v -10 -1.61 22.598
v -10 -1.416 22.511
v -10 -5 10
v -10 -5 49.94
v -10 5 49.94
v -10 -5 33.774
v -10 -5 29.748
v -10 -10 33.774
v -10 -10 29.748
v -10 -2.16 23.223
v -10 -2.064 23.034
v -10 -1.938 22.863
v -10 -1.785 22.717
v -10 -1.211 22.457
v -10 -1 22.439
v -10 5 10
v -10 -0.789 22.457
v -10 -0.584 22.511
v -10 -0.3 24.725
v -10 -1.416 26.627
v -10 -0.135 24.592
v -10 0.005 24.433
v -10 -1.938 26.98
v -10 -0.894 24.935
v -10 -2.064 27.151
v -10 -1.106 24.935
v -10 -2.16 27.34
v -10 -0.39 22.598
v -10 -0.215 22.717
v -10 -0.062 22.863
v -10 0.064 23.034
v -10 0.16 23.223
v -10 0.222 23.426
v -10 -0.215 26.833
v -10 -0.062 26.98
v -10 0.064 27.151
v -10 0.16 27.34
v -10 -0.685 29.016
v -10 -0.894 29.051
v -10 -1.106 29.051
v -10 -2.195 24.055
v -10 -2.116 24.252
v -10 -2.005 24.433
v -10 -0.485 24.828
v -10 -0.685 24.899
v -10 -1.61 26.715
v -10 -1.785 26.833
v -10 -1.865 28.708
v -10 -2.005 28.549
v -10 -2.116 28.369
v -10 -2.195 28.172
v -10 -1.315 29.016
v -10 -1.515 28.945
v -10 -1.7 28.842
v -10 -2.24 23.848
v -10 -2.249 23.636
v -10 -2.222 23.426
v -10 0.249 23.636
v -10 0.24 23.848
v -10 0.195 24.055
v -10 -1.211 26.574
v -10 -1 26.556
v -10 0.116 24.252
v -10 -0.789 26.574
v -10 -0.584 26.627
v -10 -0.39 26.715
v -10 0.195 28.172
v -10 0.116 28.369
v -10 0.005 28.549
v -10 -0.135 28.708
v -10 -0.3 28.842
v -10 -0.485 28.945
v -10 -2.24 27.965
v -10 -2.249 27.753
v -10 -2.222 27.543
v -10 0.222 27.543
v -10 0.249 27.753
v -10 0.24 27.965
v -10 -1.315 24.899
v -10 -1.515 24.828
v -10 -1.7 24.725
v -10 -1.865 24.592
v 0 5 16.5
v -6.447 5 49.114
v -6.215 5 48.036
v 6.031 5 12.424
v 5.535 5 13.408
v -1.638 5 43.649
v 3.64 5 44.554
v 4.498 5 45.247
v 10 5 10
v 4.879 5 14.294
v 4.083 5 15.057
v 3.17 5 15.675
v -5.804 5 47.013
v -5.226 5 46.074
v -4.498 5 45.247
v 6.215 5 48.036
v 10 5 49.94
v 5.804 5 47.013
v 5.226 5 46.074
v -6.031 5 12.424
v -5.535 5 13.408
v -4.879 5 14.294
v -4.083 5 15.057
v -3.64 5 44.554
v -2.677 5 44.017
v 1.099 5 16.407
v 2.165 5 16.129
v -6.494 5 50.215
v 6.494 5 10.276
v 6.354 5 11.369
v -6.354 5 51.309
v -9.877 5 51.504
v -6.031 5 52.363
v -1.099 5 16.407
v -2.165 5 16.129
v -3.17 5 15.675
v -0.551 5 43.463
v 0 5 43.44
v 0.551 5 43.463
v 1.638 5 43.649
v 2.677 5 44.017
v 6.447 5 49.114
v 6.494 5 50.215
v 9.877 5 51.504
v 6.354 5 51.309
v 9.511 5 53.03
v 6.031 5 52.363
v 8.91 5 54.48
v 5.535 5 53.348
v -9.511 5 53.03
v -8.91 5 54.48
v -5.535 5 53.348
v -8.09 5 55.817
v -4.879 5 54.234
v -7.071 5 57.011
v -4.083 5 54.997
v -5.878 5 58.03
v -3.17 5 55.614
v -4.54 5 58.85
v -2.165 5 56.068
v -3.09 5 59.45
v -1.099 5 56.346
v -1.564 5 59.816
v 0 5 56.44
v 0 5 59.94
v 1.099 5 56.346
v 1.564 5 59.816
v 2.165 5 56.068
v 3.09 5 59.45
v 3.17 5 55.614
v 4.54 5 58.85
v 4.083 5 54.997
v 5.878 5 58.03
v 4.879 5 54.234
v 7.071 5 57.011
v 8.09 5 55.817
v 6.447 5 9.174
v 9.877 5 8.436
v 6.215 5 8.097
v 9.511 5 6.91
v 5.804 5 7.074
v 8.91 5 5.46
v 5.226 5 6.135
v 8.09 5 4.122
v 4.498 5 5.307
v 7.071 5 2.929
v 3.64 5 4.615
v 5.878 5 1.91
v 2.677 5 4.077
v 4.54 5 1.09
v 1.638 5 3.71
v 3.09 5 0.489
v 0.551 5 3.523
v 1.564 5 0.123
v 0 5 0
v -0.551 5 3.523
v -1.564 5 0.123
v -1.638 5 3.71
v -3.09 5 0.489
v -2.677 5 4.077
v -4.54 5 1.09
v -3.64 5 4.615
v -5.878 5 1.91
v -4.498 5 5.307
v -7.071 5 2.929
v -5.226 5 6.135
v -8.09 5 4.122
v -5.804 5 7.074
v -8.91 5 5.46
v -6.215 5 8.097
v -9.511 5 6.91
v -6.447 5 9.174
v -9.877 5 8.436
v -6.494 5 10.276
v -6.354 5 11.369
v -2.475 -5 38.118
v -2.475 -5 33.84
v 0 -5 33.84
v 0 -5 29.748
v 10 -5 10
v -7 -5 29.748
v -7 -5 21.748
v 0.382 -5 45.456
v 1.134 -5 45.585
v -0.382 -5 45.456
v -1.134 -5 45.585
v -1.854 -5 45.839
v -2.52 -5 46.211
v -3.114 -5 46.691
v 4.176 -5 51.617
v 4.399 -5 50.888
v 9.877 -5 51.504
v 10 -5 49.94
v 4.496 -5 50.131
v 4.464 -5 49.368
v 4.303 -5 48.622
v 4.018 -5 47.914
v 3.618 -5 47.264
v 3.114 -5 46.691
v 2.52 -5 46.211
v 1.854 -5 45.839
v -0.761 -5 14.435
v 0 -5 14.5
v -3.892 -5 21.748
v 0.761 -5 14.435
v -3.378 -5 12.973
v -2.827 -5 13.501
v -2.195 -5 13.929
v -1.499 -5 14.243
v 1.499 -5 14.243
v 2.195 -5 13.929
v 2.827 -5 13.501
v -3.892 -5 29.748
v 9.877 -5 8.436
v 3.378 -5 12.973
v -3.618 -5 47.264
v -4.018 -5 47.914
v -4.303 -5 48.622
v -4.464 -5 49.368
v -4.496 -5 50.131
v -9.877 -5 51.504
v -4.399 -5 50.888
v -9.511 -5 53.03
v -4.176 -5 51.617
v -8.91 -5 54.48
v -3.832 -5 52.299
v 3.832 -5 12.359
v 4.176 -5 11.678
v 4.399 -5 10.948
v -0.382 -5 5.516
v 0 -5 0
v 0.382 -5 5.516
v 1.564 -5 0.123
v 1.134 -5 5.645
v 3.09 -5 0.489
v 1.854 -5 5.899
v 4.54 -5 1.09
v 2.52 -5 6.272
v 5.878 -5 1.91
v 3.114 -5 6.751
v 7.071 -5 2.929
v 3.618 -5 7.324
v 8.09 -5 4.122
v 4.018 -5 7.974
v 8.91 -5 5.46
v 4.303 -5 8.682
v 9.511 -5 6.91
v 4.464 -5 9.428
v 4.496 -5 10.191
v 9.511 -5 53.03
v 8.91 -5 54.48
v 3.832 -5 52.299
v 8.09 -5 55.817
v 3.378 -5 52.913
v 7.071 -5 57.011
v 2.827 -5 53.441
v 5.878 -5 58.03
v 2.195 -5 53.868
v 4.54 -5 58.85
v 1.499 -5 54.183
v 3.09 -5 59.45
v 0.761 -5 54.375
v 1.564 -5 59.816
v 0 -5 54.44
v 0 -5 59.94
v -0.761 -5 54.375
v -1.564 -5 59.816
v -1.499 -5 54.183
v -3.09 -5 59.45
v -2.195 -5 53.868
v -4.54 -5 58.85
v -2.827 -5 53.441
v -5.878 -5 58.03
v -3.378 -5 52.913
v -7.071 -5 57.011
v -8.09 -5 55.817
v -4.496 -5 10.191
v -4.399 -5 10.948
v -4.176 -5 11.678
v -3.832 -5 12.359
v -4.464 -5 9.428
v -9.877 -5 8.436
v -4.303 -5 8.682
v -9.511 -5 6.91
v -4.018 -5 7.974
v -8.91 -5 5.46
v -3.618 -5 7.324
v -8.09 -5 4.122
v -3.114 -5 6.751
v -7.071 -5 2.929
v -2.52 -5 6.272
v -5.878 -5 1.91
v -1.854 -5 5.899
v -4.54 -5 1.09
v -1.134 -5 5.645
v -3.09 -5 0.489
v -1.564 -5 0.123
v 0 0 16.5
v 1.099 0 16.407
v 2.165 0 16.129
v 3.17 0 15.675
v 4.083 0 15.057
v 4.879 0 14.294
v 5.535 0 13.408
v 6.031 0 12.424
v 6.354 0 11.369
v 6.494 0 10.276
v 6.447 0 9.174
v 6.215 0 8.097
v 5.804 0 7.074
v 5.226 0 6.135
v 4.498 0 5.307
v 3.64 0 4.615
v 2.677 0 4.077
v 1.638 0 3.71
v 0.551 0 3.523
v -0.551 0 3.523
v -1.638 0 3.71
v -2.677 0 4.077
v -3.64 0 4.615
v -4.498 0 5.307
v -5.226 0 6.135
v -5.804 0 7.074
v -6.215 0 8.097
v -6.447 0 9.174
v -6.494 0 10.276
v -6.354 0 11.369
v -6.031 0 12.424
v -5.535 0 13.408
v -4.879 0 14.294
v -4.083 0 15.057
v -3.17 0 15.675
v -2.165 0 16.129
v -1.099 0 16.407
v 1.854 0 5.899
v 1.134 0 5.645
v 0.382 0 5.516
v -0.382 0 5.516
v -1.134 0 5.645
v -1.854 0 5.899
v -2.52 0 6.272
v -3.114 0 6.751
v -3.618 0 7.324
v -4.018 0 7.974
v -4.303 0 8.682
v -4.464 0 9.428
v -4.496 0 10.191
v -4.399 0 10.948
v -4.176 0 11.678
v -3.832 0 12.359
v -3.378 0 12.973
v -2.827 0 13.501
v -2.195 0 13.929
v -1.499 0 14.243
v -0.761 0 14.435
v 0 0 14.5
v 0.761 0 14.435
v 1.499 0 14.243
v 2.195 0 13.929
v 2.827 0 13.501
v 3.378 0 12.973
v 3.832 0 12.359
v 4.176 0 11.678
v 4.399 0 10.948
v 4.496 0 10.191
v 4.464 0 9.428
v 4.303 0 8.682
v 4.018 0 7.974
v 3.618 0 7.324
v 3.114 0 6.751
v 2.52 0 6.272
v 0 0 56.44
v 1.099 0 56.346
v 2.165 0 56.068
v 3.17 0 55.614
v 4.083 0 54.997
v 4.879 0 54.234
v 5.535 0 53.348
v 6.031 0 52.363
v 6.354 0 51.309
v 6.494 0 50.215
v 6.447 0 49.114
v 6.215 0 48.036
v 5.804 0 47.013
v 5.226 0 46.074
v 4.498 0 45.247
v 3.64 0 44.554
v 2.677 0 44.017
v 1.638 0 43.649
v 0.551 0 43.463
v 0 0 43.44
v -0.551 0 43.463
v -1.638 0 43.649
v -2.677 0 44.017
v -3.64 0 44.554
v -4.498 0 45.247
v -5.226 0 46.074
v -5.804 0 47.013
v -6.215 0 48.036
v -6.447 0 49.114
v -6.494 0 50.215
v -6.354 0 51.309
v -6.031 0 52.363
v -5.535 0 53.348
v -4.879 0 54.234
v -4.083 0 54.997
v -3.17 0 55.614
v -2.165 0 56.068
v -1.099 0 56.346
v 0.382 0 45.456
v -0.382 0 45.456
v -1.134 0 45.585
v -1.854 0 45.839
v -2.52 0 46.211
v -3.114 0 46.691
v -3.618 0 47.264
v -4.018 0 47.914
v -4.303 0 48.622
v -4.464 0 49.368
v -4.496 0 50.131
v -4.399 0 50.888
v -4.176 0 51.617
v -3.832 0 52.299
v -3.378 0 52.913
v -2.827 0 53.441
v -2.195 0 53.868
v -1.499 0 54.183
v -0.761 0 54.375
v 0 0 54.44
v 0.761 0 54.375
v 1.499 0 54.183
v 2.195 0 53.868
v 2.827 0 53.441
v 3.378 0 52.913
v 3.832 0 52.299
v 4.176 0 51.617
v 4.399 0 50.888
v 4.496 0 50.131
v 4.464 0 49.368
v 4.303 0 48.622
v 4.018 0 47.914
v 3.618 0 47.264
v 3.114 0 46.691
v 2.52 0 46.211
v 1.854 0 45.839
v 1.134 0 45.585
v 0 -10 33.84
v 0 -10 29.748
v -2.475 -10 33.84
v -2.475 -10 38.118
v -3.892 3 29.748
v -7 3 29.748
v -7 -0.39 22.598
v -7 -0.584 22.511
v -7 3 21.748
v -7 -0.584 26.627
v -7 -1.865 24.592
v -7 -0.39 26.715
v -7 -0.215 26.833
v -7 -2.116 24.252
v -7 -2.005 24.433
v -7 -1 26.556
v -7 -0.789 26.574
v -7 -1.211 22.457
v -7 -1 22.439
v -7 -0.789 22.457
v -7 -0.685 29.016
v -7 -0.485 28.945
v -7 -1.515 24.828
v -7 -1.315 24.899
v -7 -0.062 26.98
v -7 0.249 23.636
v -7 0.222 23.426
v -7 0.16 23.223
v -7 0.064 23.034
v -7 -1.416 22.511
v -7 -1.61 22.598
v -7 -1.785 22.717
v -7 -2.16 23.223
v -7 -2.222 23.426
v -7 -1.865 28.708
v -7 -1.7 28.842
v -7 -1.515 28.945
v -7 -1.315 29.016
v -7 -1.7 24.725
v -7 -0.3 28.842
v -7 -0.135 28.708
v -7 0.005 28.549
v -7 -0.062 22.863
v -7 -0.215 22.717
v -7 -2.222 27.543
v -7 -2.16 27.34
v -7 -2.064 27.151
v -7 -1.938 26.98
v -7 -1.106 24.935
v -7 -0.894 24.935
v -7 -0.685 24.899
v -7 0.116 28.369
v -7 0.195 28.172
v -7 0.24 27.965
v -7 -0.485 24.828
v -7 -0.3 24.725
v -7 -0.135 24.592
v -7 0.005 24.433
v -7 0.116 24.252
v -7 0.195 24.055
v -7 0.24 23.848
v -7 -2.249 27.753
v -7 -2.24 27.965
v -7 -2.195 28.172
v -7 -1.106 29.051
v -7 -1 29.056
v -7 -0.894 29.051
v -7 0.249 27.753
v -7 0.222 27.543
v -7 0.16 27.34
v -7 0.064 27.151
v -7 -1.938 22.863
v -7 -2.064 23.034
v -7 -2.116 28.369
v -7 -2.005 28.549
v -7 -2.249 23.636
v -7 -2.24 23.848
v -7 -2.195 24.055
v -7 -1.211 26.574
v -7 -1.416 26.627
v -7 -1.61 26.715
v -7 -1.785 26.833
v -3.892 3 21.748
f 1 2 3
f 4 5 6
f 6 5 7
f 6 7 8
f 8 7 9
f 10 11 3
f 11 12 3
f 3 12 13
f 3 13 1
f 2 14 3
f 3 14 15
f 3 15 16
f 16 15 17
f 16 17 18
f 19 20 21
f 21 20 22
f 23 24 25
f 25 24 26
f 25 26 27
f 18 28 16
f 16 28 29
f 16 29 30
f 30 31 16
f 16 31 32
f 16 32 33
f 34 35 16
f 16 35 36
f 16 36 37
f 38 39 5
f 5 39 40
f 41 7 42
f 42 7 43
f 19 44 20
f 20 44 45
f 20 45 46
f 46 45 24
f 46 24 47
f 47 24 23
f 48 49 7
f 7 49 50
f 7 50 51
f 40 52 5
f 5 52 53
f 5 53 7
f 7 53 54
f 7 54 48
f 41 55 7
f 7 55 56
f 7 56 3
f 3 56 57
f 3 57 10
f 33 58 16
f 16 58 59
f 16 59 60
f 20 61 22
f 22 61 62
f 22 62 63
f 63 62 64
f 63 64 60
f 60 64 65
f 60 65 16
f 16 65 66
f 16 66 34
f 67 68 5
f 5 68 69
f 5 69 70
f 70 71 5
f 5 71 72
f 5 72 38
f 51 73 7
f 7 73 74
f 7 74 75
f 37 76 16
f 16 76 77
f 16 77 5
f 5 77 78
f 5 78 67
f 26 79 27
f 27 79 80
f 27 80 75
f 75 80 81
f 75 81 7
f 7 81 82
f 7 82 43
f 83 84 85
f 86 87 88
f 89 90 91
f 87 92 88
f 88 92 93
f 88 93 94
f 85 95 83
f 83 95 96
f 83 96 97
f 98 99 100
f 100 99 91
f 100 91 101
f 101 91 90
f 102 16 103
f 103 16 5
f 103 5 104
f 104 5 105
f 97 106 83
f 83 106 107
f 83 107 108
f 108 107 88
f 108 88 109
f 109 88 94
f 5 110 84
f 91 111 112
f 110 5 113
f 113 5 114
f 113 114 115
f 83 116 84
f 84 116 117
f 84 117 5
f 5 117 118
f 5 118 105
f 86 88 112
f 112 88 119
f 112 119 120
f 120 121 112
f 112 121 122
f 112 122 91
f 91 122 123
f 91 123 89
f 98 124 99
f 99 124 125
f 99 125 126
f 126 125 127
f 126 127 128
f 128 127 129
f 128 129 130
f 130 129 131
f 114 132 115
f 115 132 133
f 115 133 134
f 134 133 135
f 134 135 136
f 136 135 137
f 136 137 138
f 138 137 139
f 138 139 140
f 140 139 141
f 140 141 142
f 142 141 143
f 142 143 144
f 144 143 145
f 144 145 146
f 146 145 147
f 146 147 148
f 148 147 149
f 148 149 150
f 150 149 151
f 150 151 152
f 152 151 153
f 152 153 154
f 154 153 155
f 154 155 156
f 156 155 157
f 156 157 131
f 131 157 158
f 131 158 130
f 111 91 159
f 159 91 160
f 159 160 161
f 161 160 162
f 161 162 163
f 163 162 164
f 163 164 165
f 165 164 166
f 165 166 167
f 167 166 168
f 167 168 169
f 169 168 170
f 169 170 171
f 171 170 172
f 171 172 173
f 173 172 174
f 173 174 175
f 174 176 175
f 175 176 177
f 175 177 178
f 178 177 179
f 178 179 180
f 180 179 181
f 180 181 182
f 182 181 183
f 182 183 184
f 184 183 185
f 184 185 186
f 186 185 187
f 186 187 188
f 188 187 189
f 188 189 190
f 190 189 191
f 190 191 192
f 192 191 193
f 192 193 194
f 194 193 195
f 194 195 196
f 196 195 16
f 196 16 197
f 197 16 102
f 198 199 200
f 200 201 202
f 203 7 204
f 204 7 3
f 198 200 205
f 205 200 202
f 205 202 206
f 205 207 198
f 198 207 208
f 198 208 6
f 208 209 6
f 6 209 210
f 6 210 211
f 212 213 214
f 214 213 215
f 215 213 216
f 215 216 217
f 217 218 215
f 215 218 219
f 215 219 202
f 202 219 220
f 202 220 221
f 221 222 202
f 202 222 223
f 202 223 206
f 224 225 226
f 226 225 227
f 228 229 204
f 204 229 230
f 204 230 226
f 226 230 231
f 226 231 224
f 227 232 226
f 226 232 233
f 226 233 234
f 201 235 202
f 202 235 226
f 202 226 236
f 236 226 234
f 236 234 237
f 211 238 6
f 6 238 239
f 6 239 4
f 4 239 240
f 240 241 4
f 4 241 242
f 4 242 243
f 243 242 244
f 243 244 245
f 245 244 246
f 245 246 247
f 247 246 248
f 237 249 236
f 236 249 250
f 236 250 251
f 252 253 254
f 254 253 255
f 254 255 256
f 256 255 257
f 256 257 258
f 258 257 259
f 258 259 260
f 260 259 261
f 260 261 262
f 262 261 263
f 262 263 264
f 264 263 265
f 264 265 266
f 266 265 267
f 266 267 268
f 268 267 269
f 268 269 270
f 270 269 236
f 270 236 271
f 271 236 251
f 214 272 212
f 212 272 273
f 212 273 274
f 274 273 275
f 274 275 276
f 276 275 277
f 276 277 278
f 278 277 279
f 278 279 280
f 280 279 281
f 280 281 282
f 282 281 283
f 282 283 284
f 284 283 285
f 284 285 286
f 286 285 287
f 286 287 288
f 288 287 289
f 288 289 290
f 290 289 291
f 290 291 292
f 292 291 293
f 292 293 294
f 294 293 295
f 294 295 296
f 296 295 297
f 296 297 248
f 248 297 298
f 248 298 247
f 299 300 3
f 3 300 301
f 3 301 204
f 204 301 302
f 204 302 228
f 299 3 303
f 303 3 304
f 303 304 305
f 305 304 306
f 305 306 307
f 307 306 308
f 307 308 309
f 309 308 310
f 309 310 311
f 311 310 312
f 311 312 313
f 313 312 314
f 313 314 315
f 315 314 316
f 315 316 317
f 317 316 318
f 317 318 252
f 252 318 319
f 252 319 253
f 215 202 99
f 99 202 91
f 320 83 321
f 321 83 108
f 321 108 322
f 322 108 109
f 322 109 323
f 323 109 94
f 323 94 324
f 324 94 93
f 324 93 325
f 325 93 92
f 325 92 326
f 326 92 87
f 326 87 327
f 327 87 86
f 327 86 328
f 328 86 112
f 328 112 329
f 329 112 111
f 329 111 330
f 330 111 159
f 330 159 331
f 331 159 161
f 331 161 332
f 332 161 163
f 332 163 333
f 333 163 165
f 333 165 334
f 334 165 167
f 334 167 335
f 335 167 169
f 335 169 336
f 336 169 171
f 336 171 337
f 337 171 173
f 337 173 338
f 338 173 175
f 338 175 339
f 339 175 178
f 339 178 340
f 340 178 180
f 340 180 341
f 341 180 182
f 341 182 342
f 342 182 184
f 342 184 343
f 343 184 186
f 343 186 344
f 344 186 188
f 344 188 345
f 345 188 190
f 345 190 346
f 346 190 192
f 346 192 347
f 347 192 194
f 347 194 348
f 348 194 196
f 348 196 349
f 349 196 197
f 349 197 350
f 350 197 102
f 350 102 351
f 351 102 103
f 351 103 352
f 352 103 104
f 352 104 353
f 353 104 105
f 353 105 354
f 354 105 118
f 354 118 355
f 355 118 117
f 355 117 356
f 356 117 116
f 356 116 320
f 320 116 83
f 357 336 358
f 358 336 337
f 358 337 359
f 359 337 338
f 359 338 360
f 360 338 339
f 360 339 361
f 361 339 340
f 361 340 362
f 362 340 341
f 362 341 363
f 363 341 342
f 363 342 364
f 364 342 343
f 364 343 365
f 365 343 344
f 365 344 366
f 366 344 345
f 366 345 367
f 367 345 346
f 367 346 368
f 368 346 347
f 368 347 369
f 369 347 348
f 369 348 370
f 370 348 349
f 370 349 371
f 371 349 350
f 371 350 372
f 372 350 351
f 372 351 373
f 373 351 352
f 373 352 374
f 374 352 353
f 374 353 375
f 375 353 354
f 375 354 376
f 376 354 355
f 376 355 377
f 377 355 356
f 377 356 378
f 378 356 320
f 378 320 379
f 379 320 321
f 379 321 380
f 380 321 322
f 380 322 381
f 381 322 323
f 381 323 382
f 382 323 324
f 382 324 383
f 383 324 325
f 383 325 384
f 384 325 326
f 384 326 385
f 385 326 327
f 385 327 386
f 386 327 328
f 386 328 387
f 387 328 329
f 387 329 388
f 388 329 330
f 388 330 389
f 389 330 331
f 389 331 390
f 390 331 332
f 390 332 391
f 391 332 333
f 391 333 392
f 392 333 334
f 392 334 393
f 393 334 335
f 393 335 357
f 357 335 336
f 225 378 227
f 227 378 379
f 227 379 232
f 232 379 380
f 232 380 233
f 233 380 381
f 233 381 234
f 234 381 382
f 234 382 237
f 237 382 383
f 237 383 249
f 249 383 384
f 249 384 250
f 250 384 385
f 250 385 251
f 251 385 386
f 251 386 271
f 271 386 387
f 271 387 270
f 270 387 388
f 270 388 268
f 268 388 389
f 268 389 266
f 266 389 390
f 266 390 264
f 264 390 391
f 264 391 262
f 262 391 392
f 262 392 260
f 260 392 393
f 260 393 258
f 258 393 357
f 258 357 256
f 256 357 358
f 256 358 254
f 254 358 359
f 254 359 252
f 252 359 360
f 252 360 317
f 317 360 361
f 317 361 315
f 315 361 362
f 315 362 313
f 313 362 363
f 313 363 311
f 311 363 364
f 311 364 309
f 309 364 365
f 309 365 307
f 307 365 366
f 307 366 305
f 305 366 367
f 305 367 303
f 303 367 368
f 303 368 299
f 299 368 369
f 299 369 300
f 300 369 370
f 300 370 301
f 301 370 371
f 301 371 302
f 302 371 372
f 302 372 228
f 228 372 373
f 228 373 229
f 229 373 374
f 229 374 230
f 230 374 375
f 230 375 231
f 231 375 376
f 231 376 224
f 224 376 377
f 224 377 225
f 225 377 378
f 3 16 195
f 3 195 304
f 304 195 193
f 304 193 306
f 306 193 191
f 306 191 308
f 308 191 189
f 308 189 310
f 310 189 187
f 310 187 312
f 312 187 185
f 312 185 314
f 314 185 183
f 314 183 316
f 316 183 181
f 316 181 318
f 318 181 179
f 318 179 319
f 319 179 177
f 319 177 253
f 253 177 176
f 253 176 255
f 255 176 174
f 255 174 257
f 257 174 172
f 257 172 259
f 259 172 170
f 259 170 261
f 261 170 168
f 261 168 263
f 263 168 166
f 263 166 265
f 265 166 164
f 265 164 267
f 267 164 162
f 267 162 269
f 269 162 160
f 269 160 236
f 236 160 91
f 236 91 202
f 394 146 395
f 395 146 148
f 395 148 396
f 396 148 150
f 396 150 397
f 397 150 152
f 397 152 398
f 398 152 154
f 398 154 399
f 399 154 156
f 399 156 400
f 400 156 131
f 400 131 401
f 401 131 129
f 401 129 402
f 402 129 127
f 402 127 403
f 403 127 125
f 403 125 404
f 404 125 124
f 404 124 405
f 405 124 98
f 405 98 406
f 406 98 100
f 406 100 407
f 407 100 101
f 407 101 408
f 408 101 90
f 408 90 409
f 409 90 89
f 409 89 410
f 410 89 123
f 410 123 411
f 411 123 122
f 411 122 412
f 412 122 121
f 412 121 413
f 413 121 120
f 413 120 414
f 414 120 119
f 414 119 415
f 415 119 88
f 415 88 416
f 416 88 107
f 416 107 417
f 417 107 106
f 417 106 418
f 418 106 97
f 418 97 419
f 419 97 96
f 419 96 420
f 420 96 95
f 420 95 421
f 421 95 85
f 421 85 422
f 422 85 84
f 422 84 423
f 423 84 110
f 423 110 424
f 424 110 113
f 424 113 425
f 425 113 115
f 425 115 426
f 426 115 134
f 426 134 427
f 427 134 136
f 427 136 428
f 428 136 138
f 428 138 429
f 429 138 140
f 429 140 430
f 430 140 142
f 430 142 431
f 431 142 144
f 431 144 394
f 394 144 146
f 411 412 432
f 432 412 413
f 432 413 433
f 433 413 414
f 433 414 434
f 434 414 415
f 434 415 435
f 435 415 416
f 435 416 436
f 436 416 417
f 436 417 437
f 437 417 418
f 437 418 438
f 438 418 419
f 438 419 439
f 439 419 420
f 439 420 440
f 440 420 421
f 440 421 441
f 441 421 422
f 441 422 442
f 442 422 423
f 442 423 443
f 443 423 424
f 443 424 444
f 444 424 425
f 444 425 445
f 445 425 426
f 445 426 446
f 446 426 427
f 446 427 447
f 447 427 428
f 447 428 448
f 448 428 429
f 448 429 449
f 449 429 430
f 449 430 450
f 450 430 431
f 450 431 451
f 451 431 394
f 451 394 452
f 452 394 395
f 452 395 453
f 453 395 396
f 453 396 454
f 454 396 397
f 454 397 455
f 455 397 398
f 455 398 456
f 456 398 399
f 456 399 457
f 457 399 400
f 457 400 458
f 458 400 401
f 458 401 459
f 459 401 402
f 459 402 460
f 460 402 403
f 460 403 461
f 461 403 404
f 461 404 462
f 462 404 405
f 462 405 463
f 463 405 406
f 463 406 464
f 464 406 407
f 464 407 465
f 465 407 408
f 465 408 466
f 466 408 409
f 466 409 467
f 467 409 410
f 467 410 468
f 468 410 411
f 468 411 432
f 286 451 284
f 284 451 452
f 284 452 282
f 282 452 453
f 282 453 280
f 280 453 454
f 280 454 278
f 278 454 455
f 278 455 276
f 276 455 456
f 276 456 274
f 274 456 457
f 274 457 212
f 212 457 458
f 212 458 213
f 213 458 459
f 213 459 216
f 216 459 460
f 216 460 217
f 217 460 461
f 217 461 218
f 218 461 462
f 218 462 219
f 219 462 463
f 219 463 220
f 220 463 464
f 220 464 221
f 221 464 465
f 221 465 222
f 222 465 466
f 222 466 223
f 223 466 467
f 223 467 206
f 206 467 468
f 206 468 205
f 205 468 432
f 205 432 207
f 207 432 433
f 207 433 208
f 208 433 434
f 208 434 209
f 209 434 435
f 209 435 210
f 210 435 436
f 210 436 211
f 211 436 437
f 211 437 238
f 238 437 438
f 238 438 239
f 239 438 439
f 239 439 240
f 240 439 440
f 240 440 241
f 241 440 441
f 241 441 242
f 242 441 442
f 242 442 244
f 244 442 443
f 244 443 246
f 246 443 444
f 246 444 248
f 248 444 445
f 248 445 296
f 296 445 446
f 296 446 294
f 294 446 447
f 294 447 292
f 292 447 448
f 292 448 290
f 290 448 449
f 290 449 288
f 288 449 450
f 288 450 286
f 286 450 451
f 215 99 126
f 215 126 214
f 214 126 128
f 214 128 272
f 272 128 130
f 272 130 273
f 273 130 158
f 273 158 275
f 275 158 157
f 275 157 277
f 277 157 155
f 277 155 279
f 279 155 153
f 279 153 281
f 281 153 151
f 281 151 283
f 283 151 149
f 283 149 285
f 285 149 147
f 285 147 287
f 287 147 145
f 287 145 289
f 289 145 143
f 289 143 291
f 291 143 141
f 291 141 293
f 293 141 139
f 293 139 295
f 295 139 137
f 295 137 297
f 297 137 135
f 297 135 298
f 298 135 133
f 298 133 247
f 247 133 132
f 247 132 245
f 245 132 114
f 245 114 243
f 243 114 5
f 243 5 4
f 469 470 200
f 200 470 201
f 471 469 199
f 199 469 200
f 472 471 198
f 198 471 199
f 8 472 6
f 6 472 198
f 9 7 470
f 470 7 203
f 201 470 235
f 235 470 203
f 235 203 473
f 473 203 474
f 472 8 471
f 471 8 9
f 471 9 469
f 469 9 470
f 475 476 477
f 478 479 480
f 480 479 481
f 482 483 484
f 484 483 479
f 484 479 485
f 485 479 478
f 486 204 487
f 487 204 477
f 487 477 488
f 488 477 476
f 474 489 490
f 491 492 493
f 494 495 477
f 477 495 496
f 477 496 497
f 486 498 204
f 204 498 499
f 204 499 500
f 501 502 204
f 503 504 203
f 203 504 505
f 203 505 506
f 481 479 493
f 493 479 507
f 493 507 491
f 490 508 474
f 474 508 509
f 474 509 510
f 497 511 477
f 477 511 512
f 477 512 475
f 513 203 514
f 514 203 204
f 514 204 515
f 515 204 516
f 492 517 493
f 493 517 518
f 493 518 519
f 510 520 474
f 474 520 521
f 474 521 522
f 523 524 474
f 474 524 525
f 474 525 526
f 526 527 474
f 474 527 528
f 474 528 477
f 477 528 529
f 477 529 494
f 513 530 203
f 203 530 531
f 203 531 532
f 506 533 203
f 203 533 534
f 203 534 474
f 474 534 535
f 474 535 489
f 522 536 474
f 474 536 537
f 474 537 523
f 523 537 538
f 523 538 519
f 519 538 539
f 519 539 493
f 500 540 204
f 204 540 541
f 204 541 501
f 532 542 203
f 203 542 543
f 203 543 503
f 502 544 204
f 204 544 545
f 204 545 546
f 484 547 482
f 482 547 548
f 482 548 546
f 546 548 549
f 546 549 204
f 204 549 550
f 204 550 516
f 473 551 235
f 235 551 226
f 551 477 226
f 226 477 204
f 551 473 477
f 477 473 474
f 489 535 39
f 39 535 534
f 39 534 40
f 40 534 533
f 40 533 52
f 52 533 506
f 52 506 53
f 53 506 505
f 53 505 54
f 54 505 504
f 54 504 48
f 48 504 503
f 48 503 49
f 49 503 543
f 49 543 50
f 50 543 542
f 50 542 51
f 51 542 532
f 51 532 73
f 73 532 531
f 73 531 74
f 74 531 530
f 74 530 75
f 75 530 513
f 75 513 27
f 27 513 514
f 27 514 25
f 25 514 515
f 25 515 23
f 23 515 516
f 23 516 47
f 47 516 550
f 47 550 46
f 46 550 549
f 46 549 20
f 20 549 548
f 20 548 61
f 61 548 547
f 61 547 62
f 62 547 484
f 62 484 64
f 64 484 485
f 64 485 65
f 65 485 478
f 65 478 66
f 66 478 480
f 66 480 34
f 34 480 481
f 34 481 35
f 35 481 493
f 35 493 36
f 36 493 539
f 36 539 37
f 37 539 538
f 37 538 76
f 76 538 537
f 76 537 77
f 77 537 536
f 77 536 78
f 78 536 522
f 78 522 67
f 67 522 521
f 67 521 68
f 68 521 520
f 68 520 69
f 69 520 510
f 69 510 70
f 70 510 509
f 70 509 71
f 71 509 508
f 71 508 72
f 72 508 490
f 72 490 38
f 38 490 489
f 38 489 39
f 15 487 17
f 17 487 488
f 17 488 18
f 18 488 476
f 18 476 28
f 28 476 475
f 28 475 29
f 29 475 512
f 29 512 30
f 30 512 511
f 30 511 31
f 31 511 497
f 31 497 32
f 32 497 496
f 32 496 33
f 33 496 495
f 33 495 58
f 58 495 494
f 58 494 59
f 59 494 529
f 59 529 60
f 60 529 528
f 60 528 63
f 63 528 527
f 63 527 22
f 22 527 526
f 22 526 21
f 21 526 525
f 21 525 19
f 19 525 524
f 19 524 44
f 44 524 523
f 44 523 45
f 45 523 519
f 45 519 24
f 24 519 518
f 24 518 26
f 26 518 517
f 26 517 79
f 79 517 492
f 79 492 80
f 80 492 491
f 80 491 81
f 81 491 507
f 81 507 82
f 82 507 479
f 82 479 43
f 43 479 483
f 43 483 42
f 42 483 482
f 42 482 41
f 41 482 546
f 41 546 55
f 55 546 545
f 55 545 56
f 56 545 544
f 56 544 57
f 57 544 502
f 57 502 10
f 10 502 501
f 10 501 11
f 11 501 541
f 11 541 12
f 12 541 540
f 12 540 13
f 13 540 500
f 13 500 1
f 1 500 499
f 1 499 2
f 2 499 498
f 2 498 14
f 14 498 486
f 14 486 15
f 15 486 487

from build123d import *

# Parameters (mm, degrees)
SKETCH_1_W          = 20
SKETCH_1_H          = 10
EXTRUDE_1_DEPTH     = 59.939609738
SKETCH_2_R          = 6.5
CUT_EXTRUDE_1_DEPTH = 5
SKETCH_3_R          = 4.5
CUT_EXTRUDE_2_DEPTH = 20
CUT_EXTRUDE_3_DEPTH = 10
EXTRUDE_2_DEPTH     = 5
SKETCH_5_W          = 3.108428341
SKETCH_5_H          = 8
CUT_EXTRUDE_4_DEPTH = 8
SKETCH_7_R          = 1.25
CUT_EXTRUDE_5_DEPTH = 8


with BuildPart() as part:
    # 스케치1 → 보스-돌출1 (new body)
    with BuildSketch(Plane.XY):
        Rectangle(SKETCH_1_W, SKETCH_1_H)
    extrude(amount=EXTRUDE_1_DEPTH)

    # 스케치2 → 컷-돌출1 (cut)
    with BuildSketch(Plane(origin=(0, 5, 0), x_dir=(1, 0, 0), z_dir=(0, 1, 0))):
        with Locations((0, -10)):
            Circle(SKETCH_2_R)
    cut_extrude_1 = extrude(amount=-CUT_EXTRUDE_1_DEPTH, mode=Mode.SUBTRACT)

    # 스케치3 → 컷-돌출2 (cut)
    with BuildSketch(Plane(origin=(0, 5, 0), x_dir=(1, 0, 0), z_dir=(0, 1, 0))):
        with Locations((0, -10)):
            Circle(SKETCH_3_R)
    cut_extrude_2 = extrude(amount=-CUT_EXTRUDE_2_DEPTH, mode=Mode.SUBTRACT)

    # 스케치3<4> → 컷-돌출3 (cut)
    with BuildSketch(Plane(origin=(0, 5, 0), x_dir=(1, 0, 0), z_dir=(0, 1, 0))):
        with BuildLine():
            Line((-10, 0), (-10, -10))
            ThreePointArc((-10, -10), (-7.071067806, -2.928932182), (1.6e-08, 0))
            Line((1.6e-08, 0), (-10, 0))
        make_face()
        with BuildLine():
            Line((10, 0), (1.6e-08, 0))
            ThreePointArc((1.6e-08, 0), (7.071067818, -2.928932194), (10, -10))
            Line((10, -10), (10, 0))
        make_face()
    cut_extrude_3 = extrude(amount=-CUT_EXTRUDE_3_DEPTH, mode=Mode.SUBTRACT)

    # 대칭 복사1: 컷-돌출1, 컷-돌출2, 컷-돌출3 across plane
    add(cut_extrude_1.mirror(Plane.XY.offset(29.969804869)), mode=Mode.SUBTRACT)
    add(cut_extrude_2.mirror(Plane.XY.offset(29.969804869)), mode=Mode.SUBTRACT)
    add(cut_extrude_3.mirror(Plane.XY.offset(29.969804869)), mode=Mode.SUBTRACT)

    # 스케치4 → 보스-돌출2 (add)
    with BuildSketch(Plane(origin=(0, -5, 0), x_dir=(1, 0, 0), z_dir=(0, 1, 0))):
        Polygon((-2.475489913, -38.118080125), (-10, -33.773802201), (-10, -29.747626971), (0, -29.747626971), (0, -33.840387137), (-2.475489913, -33.840387137), align=None)
    extrude(amount=-EXTRUDE_2_DEPTH)

    # 스케치5 → 컷-돌출4 (cut)
    with BuildSketch(Plane.XZ.offset(5)):
        with Locations((-5.44578583, 25.747626971)):
            Rectangle(SKETCH_5_W, SKETCH_5_H)
    extrude(amount=-CUT_EXTRUDE_4_DEPTH, mode=Mode.SUBTRACT)

    # 스케치7 → 컷-돌출5 (cut)
    with BuildSketch(Plane(origin=(-7, 0, 0), x_dir=(0, 0, -1), z_dir=(1, 0, 0))):
        with Locations((-23.689322855, -1)):
            Circle(SKETCH_7_R)
        with Locations((-27.805931086, -1)):
            Circle(SKETCH_7_R)
    extrude(amount=-CUT_EXTRUDE_5_DEPTH, mode=Mode.SUBTRACT)


solid = part.part
